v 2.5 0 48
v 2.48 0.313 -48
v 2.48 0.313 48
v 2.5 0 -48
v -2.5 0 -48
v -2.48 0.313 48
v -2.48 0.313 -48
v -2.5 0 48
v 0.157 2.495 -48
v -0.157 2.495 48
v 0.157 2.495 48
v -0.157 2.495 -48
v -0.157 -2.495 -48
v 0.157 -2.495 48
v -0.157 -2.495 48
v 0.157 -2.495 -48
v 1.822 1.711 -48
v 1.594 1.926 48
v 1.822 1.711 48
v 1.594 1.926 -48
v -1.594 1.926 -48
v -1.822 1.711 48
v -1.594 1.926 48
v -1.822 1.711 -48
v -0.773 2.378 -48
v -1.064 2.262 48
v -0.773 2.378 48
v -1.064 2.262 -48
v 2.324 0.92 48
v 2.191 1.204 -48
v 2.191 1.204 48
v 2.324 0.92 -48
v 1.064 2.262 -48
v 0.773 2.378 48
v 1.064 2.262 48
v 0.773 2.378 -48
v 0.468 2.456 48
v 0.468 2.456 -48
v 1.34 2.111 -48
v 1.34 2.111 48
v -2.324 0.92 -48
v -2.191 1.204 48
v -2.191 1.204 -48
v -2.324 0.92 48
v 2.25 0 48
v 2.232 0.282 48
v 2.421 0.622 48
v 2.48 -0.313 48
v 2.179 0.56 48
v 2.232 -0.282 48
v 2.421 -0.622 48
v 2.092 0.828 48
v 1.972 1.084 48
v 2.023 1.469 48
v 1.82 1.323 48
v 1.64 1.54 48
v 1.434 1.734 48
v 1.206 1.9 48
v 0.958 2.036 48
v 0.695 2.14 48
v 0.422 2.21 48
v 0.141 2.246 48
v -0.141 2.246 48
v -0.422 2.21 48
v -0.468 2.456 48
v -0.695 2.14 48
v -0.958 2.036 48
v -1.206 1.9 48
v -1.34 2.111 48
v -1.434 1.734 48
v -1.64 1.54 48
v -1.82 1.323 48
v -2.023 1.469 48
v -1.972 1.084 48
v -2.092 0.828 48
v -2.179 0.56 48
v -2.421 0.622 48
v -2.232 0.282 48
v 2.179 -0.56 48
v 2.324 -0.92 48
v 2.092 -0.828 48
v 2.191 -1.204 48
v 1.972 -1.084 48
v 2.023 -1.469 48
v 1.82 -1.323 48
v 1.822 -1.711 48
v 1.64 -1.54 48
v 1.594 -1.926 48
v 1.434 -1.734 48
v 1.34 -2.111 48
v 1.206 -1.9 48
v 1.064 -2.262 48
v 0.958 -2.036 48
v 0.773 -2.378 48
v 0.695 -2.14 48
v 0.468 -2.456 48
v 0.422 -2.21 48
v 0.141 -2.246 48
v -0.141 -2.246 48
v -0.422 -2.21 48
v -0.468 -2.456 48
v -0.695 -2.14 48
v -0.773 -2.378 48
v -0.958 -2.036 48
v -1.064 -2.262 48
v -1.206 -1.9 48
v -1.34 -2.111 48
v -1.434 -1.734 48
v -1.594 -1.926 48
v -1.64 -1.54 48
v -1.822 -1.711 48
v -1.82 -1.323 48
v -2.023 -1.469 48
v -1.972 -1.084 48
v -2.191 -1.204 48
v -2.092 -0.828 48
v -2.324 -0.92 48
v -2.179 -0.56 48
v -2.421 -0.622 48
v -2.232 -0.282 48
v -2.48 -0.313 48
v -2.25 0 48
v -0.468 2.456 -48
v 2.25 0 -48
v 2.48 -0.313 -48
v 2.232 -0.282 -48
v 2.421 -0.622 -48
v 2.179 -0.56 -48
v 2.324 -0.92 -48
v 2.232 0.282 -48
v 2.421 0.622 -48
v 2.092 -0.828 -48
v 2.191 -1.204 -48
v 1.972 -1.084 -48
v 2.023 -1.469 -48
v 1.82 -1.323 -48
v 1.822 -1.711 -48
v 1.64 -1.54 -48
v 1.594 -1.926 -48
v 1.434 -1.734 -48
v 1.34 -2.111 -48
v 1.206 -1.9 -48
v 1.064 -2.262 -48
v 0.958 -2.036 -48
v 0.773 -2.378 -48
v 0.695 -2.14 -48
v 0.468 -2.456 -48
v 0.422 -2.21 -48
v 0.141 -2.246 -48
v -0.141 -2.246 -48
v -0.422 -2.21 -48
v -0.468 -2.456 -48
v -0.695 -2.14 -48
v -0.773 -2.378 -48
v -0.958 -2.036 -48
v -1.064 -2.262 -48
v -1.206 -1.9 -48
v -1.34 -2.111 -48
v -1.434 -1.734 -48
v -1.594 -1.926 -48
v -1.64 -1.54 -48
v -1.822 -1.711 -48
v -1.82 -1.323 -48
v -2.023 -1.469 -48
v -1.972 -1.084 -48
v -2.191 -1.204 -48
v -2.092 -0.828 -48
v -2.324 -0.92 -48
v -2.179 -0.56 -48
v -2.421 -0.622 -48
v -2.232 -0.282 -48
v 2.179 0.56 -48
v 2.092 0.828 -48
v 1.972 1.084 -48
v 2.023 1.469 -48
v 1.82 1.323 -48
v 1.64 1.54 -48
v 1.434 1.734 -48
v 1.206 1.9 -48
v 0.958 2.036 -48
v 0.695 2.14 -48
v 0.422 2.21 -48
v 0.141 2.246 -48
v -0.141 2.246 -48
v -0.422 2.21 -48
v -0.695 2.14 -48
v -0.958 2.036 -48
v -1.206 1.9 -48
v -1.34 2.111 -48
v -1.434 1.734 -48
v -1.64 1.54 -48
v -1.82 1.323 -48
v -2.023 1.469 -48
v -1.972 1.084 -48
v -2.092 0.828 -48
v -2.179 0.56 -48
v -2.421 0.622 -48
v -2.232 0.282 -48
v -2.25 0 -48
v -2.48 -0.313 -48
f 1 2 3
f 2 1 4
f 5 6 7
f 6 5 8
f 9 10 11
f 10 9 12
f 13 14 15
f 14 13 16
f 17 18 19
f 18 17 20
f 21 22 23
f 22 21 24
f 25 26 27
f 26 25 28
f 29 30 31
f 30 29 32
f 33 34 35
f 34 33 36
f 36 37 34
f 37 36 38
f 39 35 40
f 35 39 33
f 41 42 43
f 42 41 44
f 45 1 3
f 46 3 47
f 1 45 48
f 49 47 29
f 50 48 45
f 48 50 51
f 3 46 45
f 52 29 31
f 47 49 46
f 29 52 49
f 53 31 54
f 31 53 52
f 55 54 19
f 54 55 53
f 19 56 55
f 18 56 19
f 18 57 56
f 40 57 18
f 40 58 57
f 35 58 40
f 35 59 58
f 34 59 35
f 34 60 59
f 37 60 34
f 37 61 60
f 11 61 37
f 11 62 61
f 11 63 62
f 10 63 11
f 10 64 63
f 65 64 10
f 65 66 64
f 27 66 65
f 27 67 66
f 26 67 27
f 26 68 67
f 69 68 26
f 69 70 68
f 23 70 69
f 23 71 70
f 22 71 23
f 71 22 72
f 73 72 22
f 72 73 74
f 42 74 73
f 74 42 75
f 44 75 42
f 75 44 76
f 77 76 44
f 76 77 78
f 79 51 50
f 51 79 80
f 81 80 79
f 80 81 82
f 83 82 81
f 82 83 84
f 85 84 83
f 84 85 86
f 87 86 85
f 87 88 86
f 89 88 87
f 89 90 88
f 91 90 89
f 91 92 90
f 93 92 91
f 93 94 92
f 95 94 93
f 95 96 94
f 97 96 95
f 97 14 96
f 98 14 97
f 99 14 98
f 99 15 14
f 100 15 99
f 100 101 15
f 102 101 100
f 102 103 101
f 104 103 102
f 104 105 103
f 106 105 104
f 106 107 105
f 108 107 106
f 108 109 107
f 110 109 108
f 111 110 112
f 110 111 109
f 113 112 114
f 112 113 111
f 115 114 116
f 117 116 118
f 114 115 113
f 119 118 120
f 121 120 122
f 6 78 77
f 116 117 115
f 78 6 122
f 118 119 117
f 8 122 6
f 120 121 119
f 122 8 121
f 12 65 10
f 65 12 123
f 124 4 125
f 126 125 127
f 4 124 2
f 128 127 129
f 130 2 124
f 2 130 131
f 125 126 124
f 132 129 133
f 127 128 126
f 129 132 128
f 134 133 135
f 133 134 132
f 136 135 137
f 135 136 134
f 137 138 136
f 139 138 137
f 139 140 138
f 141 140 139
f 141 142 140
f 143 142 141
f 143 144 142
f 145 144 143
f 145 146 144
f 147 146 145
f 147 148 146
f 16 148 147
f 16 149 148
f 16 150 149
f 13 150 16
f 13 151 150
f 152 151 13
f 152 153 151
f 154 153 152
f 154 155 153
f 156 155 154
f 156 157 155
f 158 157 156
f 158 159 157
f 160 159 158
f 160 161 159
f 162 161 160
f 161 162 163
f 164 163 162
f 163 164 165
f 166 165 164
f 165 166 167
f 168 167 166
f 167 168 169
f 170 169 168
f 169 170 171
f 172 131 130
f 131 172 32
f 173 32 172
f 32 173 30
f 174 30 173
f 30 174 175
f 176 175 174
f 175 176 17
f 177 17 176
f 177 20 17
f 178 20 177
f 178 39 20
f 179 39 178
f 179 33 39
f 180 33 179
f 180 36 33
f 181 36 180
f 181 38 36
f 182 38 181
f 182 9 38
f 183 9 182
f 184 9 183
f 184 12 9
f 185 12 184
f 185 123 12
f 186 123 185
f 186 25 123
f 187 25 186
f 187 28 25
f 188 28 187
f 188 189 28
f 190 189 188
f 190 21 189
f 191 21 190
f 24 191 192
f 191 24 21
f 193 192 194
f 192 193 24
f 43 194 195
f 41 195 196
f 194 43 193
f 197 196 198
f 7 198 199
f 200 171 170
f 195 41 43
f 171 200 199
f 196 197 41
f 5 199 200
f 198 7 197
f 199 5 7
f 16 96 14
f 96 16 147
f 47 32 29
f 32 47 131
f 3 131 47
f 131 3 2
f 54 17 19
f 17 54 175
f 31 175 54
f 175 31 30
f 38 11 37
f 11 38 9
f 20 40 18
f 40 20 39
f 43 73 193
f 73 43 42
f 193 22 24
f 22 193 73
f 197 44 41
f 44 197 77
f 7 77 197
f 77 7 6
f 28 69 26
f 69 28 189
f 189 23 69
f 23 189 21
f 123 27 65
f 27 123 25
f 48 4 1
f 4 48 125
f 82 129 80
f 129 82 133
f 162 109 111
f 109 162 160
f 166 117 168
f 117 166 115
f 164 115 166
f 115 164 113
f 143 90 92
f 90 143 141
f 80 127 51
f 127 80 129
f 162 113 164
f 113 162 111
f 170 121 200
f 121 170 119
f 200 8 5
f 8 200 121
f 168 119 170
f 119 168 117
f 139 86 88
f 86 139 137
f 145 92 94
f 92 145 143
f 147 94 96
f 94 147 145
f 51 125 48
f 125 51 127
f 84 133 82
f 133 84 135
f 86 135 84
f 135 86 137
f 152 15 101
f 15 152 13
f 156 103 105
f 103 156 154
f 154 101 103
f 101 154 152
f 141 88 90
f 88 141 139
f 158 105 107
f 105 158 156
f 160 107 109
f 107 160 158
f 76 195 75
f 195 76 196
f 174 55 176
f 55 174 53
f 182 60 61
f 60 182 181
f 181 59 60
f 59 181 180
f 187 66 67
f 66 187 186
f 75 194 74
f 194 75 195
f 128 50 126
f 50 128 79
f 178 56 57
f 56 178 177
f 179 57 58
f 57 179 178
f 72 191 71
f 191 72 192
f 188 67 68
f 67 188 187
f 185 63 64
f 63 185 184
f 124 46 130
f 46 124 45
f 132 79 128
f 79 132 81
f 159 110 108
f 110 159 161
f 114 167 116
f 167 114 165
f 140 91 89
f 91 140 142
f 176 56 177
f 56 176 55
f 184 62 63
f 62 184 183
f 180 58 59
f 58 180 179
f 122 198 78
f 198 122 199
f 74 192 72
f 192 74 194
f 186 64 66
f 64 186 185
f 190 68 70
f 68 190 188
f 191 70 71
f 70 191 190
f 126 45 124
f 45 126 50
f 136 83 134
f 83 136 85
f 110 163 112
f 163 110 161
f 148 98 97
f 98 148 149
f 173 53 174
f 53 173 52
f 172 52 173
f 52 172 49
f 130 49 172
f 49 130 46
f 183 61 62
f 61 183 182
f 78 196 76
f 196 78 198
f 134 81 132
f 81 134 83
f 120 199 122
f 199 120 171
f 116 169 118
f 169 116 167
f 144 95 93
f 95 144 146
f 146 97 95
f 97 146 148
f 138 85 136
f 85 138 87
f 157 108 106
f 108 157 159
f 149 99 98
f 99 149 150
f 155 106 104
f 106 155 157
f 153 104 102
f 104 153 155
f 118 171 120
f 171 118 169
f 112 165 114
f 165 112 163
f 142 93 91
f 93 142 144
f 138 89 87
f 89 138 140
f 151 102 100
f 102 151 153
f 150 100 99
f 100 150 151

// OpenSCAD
$fn = 50;


difference() {
	union() {
		translate(v = [0, 0, -48.0000000000]) {
			cylinder(h = 96, r = 2.5000000000);
		}
	}
	union() {
		translate(v = [0, 0, -100.0000000000]) {
			cylinder(h = 200, r = 2.2500000000);
		}
	}
}
